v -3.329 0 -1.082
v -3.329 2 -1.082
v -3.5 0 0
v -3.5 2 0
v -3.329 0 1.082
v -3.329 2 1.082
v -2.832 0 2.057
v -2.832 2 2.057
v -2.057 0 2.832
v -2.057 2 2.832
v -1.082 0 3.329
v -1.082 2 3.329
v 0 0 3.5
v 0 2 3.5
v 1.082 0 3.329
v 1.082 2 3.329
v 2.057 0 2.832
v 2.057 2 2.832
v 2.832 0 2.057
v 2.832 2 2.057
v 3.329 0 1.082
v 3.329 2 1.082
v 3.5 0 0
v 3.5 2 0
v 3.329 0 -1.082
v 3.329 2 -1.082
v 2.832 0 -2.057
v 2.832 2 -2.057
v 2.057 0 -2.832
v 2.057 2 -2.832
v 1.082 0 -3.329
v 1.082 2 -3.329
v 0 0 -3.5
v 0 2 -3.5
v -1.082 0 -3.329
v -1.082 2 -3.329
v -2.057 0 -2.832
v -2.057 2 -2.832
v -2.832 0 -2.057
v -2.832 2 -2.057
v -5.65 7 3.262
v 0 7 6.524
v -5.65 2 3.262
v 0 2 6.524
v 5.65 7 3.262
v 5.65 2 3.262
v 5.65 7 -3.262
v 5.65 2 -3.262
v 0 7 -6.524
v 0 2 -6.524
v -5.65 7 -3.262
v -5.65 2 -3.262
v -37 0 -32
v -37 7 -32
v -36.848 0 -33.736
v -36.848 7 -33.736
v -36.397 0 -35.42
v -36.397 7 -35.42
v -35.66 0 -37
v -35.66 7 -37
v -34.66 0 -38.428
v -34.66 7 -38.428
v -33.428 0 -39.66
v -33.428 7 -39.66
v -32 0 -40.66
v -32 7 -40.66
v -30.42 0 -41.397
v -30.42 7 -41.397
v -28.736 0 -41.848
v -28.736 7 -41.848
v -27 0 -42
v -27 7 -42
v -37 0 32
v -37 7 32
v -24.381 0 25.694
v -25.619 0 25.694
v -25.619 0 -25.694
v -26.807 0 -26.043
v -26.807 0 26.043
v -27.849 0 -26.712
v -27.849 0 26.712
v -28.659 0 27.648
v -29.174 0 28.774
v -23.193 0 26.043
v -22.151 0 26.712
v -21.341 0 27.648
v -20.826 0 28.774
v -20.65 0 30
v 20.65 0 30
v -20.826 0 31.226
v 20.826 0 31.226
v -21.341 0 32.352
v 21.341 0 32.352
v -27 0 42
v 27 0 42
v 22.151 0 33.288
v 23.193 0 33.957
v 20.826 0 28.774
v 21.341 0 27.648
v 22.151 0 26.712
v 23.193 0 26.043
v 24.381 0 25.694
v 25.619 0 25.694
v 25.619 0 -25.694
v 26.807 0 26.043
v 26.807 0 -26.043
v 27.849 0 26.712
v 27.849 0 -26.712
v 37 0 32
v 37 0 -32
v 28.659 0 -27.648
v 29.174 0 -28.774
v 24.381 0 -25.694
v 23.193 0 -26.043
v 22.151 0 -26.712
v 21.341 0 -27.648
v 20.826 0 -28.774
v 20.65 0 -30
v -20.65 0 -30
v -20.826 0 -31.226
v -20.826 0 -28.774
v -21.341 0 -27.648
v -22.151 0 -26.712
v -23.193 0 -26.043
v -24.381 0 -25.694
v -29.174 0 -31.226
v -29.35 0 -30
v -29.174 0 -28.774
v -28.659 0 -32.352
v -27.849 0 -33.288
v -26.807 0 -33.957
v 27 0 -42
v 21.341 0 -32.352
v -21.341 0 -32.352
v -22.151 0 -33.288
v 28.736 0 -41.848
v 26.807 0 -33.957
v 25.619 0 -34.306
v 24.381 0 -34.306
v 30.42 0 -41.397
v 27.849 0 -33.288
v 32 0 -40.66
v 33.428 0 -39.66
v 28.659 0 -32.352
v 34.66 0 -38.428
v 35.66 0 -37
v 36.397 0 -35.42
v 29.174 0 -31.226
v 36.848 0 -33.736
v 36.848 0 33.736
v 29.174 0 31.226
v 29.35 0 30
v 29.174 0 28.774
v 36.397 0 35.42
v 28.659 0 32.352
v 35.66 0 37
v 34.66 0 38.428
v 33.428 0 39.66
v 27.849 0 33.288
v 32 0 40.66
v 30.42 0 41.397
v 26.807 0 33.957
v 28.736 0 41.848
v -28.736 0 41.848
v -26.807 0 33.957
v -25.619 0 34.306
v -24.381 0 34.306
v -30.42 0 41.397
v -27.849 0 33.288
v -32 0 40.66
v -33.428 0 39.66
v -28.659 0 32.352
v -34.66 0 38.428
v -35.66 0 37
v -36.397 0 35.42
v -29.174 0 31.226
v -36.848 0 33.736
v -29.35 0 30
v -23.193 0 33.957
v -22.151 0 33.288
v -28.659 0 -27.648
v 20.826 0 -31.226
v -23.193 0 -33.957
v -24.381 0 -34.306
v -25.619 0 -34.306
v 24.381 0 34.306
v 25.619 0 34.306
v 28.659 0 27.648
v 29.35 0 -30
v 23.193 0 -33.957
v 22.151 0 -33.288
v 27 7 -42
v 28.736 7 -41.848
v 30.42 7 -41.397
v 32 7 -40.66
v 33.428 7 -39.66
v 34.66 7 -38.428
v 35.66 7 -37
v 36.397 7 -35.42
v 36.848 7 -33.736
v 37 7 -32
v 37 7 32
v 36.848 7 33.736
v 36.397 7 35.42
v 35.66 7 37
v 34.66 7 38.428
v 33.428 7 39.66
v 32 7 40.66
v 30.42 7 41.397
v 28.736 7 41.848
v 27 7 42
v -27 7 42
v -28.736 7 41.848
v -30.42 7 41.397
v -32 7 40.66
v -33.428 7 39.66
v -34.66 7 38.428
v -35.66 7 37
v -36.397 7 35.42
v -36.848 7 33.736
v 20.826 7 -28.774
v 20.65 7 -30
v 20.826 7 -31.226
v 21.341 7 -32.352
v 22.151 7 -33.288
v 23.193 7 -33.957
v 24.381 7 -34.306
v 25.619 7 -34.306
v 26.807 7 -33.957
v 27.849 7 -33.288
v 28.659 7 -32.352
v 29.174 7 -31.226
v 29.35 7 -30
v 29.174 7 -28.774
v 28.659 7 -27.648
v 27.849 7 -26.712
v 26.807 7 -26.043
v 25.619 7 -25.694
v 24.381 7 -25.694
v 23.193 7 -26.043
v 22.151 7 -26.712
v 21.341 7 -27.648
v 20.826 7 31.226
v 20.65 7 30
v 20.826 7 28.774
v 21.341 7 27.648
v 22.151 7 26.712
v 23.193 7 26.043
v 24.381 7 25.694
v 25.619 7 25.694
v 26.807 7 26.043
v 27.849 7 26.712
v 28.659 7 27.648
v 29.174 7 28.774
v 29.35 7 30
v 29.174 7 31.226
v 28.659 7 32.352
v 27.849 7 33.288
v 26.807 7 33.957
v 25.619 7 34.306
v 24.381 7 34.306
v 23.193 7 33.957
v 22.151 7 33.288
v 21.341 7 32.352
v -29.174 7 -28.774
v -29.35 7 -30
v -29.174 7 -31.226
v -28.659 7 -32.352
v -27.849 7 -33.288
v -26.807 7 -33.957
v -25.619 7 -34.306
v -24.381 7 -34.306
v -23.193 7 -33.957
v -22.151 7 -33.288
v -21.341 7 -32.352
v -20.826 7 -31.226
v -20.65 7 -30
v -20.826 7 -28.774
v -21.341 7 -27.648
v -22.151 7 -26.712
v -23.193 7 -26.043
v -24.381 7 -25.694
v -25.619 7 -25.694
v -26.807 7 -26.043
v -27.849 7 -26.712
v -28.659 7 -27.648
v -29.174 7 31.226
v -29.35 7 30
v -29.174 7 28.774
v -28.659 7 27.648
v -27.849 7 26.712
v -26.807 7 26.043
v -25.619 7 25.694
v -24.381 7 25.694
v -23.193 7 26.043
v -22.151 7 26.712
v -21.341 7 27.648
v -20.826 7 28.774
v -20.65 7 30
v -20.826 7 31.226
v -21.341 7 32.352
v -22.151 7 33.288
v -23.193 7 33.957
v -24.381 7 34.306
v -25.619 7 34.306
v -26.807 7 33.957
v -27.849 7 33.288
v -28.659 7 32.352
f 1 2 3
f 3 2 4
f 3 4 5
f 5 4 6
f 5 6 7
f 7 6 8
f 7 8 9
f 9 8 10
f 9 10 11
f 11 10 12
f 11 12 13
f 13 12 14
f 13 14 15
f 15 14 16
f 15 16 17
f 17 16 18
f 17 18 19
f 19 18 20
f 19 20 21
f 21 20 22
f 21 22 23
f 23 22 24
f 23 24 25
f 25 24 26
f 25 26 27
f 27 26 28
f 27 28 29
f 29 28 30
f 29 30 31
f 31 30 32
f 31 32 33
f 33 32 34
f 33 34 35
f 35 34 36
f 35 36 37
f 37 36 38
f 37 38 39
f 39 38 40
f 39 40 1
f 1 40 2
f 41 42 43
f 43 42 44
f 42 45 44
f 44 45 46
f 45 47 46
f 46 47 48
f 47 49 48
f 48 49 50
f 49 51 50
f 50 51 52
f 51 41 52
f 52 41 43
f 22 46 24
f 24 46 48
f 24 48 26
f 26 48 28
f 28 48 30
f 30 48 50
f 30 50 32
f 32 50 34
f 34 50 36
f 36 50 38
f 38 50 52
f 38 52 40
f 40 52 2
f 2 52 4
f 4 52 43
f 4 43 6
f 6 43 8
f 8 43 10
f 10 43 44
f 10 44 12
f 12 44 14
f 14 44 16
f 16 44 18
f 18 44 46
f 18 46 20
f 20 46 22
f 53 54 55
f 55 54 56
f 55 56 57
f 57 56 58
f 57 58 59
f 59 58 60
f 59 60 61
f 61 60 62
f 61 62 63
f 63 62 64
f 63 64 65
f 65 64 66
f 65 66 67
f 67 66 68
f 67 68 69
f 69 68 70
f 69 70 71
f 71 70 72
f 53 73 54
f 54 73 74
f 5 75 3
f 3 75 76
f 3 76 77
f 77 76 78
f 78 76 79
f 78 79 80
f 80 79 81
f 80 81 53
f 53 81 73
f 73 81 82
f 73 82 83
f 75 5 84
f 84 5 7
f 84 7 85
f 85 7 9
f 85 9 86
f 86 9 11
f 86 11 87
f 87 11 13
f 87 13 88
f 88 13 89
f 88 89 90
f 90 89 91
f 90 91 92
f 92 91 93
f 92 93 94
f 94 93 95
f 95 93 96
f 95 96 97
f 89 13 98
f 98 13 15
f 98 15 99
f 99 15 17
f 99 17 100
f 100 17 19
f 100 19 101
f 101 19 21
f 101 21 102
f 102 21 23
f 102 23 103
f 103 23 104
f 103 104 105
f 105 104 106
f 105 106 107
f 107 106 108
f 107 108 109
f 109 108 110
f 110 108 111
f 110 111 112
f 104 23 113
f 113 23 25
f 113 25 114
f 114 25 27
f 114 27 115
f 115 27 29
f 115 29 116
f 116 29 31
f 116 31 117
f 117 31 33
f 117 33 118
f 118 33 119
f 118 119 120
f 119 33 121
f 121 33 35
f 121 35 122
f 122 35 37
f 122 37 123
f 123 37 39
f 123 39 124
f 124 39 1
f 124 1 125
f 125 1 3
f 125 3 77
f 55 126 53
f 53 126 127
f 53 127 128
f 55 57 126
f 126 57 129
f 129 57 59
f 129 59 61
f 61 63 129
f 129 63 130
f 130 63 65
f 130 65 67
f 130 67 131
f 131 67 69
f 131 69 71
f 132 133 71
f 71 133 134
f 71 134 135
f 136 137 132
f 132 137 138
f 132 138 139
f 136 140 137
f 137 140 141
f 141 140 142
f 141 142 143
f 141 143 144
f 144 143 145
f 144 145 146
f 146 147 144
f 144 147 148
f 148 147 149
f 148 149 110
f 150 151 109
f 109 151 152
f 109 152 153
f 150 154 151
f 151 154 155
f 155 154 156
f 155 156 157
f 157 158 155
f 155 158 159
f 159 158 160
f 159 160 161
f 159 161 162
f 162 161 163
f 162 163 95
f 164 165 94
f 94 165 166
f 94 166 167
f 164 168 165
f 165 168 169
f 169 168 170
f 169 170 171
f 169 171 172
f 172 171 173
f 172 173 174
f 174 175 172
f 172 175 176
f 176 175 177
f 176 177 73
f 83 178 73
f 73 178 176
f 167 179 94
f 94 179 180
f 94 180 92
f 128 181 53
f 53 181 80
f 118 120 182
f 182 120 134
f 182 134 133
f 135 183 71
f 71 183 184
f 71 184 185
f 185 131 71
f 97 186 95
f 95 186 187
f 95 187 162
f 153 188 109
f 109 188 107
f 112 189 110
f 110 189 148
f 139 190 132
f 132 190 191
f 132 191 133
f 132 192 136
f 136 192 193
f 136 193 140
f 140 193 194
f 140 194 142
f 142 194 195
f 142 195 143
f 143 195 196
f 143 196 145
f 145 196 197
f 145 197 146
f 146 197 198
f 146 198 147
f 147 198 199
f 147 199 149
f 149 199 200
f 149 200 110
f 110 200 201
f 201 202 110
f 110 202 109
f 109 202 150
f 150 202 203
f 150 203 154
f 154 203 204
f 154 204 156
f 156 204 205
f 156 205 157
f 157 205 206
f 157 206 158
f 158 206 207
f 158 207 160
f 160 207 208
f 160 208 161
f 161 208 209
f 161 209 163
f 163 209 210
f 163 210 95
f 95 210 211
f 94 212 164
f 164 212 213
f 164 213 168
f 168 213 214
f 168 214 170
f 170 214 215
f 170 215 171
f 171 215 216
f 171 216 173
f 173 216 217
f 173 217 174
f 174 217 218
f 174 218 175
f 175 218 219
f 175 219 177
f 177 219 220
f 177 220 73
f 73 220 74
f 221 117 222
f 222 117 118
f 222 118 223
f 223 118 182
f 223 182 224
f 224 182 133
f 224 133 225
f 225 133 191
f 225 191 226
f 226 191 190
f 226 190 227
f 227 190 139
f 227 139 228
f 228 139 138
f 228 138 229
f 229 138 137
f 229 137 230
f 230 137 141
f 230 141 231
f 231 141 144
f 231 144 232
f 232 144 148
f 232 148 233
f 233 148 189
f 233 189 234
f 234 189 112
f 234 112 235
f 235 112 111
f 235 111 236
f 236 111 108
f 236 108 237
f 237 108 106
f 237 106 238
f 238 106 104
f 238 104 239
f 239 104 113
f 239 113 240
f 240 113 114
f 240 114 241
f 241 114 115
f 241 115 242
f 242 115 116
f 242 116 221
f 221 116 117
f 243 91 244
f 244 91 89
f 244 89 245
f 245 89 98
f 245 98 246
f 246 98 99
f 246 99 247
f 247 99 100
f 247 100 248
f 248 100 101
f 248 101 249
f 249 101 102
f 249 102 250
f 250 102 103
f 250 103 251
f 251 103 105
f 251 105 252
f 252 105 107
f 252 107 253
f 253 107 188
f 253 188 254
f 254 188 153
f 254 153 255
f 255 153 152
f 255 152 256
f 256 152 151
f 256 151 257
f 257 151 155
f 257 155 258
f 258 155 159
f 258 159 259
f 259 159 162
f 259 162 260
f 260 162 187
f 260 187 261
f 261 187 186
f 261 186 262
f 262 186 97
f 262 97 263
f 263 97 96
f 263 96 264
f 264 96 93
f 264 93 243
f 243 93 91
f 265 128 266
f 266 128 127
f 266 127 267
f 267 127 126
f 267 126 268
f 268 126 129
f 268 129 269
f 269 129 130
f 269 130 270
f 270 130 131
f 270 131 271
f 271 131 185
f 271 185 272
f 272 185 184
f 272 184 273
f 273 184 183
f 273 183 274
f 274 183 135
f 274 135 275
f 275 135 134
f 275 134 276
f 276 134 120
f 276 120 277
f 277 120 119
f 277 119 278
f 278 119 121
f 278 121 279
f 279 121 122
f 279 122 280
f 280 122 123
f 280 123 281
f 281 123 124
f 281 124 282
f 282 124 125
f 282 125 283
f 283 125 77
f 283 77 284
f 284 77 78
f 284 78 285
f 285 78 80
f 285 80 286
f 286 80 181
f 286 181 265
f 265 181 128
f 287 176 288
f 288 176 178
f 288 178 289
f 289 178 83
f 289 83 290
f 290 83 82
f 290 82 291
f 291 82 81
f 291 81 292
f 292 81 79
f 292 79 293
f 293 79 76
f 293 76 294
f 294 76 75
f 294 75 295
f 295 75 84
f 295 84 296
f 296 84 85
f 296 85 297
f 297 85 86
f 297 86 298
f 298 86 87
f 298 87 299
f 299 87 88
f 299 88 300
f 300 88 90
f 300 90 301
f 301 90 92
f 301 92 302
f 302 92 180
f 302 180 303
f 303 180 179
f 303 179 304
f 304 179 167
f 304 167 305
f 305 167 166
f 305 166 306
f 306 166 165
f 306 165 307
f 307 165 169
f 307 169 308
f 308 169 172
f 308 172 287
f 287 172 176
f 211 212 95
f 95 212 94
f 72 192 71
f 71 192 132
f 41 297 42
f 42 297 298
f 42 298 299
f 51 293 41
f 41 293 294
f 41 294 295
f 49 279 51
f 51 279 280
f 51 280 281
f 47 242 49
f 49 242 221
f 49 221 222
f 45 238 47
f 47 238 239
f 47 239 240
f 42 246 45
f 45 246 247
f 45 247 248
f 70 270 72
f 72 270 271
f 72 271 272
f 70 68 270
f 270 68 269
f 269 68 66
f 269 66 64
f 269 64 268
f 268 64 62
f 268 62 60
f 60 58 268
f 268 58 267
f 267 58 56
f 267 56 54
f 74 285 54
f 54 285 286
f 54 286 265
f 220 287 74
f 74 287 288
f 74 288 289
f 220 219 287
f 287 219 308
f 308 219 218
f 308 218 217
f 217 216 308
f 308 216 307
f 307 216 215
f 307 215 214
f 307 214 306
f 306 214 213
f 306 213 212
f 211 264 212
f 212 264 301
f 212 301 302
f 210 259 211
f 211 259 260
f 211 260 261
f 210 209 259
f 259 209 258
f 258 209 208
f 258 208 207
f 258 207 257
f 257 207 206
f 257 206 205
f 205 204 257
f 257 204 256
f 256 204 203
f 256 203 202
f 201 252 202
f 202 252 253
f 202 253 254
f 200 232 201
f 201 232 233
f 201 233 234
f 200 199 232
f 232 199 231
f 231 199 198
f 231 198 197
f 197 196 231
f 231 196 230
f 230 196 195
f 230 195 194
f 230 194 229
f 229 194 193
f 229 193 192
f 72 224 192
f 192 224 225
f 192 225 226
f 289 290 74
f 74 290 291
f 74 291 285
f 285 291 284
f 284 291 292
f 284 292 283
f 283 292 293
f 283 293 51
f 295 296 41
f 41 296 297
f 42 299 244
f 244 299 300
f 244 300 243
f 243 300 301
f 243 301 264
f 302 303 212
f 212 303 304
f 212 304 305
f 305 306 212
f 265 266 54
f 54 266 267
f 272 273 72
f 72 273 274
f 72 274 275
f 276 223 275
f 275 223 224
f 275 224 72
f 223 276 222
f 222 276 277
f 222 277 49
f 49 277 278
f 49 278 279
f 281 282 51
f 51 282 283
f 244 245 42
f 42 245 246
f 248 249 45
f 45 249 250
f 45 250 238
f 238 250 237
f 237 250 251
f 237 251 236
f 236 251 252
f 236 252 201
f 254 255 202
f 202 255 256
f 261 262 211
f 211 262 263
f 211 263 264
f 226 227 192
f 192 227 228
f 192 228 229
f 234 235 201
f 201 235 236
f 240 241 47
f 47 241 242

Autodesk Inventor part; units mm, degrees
ref_plane "YZ Plane" through (0, 0, 0) normal (1, 0, 0) x (0, 1, 0)
ref_plane "XZ Plane" through (0, 0, 0) normal (0, 1, 0) x (-1, 0, 0)
ref_plane "XY Plane" through (0, 0, 0) normal (0, 0, 1) x (1, 0, 0)
sketch "Sketch1" plane through (0, 0, 0) normal (0, 1, 0) x (-1, 0, 0)
  line L0 (37, 42) -> (-37, 42)
  line L1 (-37, 42) -> (-37, -42)
  line L2 (-37, -42) -> (37, -42)
  line L3 (37, -42) -> (37, 42)
  line L4 (37, 42) -> (-37, -42) construction
  line L5 (-37, 42) -> (37, -42) construction
  circle A0 centre (25, 30) radius 4.35
  circle A1 centre (25, -30) radius 4.35
  circle A2 centre (-25, 30) radius 4.35
  circle A3 centre (-25, -30) radius 4.35
  point P0 (0, 0)
  dimension "d0" = 74
  dimension "d1" = 84
  dimension "d4" = 60
  dimension "d7" = 50
  dimension "d10" = 8.7
  dimension "d11" = 12
  dimension "d12" = 12
extrude "Extrusion1" add sketch "Sketch1" along normal blind 7
fillet "Fillet1" radius 10 4 edges at (-37, 3.5, 42) (37, 3.5, 42) (37, 3.5, -42) (-37, 3.5, -42)
sketch "Sketch2" plane through (0, 7, 0) normal (0, 1, 0) x (1, 0, 0)
  line L0 (0, 6.5241) -> (5.65, 3.262)
  line L1 (5.65, 3.262) -> (5.65, -3.262)
  line L2 (5.65, -3.262) -> (0, -6.5241)
  line L3 (0, -6.5241) -> (-5.65, -3.262)
  line L4 (-5.65, -3.262) -> (-5.65, 3.262)
  line L5 (-5.65, 3.262) -> (0, 6.5241)
  point P0 (0, 0)
  point P1 (0, 0)
  dimension "d16" = 11.3
extrude "Extrusion2" cut sketch "Sketch2" against normal blind 5
sketch "Sketch3" plane through (0, 2, 0) normal (0, 1, 0) x (1, 0, 0)
  circle A0 centre (0, 0) radius 3.5
  dimension "d19" = 7
extrude "Extrusion3" cut sketch "Sketch3" against normal through all
properties part number "Yagi_fixed_plate"
